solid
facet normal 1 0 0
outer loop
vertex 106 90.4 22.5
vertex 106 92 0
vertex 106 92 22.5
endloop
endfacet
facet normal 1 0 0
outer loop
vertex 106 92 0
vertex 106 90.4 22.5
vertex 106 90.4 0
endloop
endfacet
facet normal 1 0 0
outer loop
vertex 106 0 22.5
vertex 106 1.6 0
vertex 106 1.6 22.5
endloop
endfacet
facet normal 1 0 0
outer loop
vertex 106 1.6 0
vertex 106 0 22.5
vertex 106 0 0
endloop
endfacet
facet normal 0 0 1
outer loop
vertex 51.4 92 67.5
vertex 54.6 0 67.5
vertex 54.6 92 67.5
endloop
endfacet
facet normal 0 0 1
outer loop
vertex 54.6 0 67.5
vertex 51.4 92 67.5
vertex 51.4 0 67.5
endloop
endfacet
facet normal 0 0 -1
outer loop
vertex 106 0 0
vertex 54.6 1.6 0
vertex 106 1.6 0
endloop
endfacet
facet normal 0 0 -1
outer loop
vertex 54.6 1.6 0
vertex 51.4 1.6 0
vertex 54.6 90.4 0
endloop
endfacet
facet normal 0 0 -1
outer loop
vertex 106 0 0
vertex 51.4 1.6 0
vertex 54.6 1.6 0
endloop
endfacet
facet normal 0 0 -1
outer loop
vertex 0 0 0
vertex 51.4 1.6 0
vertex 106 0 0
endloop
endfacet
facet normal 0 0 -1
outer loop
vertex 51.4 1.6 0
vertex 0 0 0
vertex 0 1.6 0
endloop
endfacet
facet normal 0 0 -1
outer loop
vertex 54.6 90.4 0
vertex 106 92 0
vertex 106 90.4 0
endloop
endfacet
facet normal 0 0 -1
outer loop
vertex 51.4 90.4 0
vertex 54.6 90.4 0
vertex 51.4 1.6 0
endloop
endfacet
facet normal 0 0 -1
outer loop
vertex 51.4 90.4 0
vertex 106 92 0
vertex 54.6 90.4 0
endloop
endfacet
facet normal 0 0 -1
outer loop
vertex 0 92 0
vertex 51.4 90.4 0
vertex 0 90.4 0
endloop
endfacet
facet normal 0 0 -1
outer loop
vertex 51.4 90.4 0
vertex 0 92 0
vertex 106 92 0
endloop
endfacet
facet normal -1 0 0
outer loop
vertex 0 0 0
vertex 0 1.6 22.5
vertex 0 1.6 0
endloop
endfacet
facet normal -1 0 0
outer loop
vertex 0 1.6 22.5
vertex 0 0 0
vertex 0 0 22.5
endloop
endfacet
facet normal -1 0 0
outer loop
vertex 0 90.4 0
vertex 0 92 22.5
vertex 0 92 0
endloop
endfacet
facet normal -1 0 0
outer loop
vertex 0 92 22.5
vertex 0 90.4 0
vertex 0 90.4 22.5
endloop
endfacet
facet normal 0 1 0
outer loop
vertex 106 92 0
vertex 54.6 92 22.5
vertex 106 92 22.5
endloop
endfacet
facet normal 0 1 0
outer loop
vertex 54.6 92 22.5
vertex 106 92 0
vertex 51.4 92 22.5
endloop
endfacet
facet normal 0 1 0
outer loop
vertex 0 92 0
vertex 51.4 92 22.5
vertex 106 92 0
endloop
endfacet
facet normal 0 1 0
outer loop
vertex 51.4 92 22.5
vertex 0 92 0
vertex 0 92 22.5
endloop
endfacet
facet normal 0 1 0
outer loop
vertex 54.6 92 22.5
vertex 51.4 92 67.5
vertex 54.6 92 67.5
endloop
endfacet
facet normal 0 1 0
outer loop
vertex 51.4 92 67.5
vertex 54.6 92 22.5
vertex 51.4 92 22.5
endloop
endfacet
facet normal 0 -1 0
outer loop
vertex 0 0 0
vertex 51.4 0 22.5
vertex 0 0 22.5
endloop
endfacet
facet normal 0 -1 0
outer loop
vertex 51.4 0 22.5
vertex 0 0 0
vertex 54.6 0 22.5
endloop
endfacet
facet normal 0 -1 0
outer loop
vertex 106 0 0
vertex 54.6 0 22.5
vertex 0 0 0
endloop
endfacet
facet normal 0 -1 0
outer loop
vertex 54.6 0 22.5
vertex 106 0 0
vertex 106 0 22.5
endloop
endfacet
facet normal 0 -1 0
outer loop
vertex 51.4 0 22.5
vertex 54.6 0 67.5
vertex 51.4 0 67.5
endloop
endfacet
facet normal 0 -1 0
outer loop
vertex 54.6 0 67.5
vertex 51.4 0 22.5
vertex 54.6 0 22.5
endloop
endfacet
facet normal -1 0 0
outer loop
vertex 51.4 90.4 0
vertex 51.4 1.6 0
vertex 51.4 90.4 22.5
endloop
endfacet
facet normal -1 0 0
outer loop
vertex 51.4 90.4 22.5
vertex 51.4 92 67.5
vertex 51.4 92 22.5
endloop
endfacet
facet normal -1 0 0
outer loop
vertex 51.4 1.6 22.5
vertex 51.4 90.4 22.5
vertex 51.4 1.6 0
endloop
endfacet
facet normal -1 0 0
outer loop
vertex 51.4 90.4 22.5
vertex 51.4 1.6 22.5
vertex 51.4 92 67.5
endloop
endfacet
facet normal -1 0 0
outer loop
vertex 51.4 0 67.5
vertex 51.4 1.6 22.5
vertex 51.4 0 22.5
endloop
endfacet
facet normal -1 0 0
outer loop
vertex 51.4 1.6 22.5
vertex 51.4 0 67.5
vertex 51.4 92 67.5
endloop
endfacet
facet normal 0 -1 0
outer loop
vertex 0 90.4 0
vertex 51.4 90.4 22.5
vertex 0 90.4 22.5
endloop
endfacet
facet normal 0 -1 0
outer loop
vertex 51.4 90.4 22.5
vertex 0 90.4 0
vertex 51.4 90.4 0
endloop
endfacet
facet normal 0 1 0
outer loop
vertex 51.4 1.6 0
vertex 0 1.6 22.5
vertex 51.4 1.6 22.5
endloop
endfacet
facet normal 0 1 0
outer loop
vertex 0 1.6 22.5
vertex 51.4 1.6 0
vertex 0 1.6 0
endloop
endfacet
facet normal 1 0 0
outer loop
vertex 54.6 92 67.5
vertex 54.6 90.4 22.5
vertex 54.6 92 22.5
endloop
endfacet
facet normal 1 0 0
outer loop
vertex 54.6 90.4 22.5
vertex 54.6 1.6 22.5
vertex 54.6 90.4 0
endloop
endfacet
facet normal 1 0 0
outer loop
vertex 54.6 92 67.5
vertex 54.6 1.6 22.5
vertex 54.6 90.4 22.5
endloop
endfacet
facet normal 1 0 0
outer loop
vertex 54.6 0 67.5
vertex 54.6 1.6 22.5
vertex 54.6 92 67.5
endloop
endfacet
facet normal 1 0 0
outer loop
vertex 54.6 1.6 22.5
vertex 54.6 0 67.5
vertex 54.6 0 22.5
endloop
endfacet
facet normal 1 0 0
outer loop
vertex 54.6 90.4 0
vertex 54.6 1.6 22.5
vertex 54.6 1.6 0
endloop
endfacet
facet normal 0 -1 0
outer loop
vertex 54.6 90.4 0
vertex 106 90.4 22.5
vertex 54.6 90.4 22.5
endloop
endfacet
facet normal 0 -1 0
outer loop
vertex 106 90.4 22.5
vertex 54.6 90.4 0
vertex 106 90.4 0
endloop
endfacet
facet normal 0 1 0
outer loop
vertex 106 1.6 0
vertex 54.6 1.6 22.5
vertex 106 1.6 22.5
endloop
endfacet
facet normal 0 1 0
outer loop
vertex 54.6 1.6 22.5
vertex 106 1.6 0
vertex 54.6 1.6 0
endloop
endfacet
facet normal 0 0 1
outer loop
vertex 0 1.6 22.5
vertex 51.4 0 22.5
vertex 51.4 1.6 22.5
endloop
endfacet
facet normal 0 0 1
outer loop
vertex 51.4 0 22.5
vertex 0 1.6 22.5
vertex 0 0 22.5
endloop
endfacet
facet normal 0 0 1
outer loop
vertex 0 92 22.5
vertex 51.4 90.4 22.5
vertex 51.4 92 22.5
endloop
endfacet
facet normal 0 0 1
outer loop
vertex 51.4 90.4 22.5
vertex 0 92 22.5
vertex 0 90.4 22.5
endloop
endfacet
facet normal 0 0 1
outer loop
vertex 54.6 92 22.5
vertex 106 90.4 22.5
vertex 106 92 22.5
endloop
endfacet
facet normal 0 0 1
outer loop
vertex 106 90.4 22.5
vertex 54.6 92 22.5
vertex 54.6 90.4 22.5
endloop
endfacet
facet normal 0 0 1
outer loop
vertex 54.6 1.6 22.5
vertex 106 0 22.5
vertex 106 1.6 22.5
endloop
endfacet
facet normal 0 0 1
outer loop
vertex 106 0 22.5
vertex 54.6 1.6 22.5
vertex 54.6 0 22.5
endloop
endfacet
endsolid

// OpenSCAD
l = 106;
w = 92;
d = 90;

hfac = 0.75;
wall = 3.2;

difference() {
    cube([l, w, d * hfac]);
    translate([-1, wall / 2, 0]) 
        cube([(l - wall) / 2 + 1, (w - wall), d]);
    translate([(l - wall) / 2 + wall, wall / 2, 0])
        cube([(l - wall) / 2 + 1, (w - wall), d]);
    translate([-1, -1, d * (1 - hfac)])
        cube([(l - wall) / 2 + 1, w + 2, d]);
    translate([(l - wall) / 2 + wall, -1, d * (1 - hfac)])
        cube([(l - wall) / 2 + 1, w + 2, d]);
        
}
